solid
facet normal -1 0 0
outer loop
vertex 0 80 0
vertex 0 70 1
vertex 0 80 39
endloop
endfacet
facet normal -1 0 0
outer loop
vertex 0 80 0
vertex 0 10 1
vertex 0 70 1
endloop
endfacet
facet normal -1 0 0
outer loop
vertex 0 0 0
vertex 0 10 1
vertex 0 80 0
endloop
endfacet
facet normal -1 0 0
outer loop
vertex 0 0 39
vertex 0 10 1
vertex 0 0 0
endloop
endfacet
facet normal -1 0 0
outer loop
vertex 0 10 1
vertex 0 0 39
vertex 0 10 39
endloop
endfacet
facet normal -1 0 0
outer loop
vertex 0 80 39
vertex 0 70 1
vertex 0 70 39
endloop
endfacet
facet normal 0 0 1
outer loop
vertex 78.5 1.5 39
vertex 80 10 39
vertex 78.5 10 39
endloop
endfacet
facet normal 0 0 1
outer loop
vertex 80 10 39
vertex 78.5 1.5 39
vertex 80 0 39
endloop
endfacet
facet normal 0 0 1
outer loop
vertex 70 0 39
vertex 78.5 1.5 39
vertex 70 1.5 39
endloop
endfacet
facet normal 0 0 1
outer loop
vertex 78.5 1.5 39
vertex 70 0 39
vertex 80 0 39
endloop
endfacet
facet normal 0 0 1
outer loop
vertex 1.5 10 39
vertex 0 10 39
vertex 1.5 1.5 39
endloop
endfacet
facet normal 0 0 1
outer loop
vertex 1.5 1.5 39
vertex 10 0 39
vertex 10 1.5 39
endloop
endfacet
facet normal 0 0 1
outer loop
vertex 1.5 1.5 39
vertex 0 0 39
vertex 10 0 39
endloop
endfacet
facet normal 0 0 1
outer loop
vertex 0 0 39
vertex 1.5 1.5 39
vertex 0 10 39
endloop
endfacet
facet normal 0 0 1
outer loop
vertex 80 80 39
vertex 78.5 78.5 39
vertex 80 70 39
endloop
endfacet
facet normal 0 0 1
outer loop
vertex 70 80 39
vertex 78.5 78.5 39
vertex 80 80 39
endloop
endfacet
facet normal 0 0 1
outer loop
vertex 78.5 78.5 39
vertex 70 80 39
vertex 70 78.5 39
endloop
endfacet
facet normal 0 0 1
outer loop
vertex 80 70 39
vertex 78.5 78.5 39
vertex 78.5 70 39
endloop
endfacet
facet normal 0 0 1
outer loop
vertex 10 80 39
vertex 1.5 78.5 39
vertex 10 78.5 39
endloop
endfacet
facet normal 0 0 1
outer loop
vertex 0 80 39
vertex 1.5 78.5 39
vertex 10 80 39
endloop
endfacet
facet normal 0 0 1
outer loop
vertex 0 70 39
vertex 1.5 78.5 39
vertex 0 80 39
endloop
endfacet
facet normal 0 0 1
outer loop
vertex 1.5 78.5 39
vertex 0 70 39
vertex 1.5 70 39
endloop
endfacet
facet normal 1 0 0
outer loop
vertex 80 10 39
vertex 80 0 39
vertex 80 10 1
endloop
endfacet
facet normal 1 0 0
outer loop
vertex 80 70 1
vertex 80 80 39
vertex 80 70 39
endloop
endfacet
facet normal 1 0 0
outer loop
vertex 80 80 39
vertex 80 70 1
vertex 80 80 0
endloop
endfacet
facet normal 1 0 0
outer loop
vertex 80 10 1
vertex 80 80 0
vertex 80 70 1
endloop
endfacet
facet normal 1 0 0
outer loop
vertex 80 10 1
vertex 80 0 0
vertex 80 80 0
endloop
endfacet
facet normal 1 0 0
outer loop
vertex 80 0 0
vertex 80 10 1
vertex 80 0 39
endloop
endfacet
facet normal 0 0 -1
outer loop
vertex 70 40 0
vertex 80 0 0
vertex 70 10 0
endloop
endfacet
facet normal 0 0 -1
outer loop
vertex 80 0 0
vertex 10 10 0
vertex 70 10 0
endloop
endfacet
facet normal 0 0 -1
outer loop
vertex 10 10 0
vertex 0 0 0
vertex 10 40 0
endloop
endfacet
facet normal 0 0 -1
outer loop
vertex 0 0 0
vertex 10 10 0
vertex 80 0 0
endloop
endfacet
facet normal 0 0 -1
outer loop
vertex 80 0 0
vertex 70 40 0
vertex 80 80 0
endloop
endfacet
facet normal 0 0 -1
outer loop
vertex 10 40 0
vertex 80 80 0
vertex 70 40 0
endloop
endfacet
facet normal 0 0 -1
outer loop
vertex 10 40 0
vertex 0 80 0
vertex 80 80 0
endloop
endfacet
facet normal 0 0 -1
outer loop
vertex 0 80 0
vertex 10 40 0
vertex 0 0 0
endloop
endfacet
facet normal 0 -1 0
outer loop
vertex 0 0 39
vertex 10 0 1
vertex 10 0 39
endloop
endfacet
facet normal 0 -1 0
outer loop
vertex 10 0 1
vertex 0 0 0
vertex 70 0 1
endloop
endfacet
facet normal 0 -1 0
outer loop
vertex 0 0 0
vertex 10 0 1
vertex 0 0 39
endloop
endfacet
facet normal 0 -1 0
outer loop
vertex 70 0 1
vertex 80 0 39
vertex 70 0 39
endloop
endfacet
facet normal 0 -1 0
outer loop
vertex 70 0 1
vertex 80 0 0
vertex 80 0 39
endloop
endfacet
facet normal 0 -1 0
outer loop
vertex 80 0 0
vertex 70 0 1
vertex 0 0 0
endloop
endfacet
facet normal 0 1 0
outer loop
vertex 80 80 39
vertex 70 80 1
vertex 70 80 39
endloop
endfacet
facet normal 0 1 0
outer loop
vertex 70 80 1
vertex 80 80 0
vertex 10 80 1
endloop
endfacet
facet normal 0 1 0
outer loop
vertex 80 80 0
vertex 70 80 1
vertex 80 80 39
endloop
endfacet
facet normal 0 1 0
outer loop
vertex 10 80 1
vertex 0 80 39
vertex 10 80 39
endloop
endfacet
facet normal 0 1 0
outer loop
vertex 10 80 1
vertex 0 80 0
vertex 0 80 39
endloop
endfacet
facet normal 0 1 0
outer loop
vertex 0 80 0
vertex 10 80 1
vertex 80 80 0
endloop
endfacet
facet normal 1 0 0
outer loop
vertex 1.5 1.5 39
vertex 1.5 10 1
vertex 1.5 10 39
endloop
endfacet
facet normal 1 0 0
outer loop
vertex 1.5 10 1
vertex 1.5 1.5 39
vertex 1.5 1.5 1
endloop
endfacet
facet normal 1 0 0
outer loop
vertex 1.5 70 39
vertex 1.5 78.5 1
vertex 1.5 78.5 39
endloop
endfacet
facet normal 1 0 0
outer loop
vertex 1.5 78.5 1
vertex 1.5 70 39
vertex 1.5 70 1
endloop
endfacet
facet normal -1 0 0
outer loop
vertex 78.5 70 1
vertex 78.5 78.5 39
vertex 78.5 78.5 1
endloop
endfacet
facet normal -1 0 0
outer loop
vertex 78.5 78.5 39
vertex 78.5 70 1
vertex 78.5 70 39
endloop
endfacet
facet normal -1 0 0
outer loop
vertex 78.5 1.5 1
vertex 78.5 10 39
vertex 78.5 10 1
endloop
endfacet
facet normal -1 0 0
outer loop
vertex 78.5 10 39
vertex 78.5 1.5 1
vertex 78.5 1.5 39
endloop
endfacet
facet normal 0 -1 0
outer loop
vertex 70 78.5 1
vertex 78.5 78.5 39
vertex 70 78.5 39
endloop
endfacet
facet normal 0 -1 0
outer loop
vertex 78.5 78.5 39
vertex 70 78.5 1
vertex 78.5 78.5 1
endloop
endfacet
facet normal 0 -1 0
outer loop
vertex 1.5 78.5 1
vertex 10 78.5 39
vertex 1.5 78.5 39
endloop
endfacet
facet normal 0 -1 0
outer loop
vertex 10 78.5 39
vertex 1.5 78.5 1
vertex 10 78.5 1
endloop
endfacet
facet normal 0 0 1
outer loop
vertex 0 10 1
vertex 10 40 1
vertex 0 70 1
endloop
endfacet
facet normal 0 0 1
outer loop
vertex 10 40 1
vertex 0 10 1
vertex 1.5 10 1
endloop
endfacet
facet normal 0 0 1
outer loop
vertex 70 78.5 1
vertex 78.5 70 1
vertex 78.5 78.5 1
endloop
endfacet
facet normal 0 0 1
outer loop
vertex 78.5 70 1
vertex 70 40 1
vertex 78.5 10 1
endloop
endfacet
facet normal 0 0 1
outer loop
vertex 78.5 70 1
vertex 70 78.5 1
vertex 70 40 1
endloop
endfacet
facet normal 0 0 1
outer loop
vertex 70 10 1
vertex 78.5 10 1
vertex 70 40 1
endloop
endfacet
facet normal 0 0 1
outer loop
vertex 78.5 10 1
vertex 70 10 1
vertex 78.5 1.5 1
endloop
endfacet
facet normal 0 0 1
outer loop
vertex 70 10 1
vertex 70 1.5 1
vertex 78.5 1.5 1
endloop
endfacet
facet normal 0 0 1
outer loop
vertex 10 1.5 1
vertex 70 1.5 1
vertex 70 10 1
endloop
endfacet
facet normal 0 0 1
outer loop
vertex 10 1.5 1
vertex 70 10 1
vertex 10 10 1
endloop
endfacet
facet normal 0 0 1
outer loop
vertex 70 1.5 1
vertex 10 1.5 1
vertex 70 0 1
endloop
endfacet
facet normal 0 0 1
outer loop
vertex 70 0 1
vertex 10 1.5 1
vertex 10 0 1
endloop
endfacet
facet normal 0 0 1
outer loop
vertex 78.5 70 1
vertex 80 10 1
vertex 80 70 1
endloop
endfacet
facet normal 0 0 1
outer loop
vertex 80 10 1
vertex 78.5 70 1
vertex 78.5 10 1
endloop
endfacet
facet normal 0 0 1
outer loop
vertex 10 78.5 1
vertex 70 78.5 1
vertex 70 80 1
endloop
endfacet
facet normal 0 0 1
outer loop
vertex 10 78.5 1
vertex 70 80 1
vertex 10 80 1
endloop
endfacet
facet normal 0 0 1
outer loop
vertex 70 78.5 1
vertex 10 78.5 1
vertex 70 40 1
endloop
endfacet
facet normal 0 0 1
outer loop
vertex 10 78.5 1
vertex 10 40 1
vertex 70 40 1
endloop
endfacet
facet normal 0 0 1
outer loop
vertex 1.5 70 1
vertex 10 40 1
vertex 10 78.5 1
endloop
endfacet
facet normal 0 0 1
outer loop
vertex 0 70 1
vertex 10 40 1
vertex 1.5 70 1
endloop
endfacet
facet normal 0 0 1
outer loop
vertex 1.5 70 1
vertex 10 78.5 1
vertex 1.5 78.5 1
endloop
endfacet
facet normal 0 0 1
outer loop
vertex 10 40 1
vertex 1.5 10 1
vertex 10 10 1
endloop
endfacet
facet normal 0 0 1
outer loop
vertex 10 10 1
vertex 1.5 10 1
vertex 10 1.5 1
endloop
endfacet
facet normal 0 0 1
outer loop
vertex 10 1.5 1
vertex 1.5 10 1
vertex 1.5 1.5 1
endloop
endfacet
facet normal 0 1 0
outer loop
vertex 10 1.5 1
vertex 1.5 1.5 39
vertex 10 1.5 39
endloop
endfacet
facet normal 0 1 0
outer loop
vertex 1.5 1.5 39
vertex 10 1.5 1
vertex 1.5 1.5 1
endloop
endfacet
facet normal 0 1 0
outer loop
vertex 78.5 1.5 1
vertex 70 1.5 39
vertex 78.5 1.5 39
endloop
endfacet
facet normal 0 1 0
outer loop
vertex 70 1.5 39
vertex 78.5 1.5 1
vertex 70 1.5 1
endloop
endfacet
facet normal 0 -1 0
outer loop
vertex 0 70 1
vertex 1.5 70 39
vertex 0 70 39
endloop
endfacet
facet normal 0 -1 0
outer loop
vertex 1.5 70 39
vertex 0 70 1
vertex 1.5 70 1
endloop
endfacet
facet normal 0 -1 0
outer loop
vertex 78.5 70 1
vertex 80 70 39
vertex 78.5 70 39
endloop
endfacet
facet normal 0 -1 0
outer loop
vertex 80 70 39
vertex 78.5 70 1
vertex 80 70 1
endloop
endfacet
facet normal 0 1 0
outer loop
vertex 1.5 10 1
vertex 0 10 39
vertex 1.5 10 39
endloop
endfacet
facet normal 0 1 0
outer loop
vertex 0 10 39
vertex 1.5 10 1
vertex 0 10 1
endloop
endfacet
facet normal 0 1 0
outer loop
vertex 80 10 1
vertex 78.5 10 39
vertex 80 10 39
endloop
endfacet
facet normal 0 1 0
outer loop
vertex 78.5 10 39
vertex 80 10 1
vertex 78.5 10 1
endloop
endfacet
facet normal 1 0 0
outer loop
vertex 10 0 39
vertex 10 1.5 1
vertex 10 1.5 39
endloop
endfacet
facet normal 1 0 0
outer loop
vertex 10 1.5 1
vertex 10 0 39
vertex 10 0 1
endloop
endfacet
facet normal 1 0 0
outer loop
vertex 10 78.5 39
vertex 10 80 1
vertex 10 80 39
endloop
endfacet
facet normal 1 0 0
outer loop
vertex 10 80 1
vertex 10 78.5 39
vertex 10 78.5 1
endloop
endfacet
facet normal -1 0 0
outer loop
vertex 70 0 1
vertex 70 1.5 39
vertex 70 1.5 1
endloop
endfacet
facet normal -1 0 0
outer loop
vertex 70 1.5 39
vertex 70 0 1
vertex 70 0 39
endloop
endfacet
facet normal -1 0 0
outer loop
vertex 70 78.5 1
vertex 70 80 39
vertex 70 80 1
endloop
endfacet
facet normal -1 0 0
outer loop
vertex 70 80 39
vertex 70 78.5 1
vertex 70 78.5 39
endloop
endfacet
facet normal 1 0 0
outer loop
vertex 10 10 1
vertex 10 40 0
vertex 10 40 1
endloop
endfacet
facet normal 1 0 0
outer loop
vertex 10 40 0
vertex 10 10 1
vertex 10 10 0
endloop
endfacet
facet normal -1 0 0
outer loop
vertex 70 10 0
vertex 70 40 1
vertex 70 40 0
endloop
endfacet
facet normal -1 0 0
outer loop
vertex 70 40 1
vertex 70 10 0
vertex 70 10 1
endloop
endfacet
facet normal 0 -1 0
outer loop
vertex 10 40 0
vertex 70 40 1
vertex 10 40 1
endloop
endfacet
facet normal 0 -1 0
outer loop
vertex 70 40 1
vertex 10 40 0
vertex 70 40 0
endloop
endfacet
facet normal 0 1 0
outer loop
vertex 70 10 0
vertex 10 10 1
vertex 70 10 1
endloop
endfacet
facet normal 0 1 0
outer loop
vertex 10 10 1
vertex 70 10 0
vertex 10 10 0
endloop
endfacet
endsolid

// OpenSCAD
breite = 80;
laenge = 80;
hoehe = 39;

wandstaerke = 1.5;

difference() {
    // Rahmenbox
    cube([breite,80,39]);
    // Innere Box
    translate([wandstaerke, wandstaerke, 1]) cube([breite - wandstaerke * 2,laenge - wandstaerke * 2, hoehe]);
    // Längsbox
    translate([-1, 10, 1]) cube([breite+2,laenge-20,hoehe]);
    // Querbox
    translate([10, -1, 1]) cube([breite-20,laenge+2,hoehe]);
    // Bodenaussparung
    translate([10, 10, -1]) cube([breite-20,laenge/2-10,4]);
}
